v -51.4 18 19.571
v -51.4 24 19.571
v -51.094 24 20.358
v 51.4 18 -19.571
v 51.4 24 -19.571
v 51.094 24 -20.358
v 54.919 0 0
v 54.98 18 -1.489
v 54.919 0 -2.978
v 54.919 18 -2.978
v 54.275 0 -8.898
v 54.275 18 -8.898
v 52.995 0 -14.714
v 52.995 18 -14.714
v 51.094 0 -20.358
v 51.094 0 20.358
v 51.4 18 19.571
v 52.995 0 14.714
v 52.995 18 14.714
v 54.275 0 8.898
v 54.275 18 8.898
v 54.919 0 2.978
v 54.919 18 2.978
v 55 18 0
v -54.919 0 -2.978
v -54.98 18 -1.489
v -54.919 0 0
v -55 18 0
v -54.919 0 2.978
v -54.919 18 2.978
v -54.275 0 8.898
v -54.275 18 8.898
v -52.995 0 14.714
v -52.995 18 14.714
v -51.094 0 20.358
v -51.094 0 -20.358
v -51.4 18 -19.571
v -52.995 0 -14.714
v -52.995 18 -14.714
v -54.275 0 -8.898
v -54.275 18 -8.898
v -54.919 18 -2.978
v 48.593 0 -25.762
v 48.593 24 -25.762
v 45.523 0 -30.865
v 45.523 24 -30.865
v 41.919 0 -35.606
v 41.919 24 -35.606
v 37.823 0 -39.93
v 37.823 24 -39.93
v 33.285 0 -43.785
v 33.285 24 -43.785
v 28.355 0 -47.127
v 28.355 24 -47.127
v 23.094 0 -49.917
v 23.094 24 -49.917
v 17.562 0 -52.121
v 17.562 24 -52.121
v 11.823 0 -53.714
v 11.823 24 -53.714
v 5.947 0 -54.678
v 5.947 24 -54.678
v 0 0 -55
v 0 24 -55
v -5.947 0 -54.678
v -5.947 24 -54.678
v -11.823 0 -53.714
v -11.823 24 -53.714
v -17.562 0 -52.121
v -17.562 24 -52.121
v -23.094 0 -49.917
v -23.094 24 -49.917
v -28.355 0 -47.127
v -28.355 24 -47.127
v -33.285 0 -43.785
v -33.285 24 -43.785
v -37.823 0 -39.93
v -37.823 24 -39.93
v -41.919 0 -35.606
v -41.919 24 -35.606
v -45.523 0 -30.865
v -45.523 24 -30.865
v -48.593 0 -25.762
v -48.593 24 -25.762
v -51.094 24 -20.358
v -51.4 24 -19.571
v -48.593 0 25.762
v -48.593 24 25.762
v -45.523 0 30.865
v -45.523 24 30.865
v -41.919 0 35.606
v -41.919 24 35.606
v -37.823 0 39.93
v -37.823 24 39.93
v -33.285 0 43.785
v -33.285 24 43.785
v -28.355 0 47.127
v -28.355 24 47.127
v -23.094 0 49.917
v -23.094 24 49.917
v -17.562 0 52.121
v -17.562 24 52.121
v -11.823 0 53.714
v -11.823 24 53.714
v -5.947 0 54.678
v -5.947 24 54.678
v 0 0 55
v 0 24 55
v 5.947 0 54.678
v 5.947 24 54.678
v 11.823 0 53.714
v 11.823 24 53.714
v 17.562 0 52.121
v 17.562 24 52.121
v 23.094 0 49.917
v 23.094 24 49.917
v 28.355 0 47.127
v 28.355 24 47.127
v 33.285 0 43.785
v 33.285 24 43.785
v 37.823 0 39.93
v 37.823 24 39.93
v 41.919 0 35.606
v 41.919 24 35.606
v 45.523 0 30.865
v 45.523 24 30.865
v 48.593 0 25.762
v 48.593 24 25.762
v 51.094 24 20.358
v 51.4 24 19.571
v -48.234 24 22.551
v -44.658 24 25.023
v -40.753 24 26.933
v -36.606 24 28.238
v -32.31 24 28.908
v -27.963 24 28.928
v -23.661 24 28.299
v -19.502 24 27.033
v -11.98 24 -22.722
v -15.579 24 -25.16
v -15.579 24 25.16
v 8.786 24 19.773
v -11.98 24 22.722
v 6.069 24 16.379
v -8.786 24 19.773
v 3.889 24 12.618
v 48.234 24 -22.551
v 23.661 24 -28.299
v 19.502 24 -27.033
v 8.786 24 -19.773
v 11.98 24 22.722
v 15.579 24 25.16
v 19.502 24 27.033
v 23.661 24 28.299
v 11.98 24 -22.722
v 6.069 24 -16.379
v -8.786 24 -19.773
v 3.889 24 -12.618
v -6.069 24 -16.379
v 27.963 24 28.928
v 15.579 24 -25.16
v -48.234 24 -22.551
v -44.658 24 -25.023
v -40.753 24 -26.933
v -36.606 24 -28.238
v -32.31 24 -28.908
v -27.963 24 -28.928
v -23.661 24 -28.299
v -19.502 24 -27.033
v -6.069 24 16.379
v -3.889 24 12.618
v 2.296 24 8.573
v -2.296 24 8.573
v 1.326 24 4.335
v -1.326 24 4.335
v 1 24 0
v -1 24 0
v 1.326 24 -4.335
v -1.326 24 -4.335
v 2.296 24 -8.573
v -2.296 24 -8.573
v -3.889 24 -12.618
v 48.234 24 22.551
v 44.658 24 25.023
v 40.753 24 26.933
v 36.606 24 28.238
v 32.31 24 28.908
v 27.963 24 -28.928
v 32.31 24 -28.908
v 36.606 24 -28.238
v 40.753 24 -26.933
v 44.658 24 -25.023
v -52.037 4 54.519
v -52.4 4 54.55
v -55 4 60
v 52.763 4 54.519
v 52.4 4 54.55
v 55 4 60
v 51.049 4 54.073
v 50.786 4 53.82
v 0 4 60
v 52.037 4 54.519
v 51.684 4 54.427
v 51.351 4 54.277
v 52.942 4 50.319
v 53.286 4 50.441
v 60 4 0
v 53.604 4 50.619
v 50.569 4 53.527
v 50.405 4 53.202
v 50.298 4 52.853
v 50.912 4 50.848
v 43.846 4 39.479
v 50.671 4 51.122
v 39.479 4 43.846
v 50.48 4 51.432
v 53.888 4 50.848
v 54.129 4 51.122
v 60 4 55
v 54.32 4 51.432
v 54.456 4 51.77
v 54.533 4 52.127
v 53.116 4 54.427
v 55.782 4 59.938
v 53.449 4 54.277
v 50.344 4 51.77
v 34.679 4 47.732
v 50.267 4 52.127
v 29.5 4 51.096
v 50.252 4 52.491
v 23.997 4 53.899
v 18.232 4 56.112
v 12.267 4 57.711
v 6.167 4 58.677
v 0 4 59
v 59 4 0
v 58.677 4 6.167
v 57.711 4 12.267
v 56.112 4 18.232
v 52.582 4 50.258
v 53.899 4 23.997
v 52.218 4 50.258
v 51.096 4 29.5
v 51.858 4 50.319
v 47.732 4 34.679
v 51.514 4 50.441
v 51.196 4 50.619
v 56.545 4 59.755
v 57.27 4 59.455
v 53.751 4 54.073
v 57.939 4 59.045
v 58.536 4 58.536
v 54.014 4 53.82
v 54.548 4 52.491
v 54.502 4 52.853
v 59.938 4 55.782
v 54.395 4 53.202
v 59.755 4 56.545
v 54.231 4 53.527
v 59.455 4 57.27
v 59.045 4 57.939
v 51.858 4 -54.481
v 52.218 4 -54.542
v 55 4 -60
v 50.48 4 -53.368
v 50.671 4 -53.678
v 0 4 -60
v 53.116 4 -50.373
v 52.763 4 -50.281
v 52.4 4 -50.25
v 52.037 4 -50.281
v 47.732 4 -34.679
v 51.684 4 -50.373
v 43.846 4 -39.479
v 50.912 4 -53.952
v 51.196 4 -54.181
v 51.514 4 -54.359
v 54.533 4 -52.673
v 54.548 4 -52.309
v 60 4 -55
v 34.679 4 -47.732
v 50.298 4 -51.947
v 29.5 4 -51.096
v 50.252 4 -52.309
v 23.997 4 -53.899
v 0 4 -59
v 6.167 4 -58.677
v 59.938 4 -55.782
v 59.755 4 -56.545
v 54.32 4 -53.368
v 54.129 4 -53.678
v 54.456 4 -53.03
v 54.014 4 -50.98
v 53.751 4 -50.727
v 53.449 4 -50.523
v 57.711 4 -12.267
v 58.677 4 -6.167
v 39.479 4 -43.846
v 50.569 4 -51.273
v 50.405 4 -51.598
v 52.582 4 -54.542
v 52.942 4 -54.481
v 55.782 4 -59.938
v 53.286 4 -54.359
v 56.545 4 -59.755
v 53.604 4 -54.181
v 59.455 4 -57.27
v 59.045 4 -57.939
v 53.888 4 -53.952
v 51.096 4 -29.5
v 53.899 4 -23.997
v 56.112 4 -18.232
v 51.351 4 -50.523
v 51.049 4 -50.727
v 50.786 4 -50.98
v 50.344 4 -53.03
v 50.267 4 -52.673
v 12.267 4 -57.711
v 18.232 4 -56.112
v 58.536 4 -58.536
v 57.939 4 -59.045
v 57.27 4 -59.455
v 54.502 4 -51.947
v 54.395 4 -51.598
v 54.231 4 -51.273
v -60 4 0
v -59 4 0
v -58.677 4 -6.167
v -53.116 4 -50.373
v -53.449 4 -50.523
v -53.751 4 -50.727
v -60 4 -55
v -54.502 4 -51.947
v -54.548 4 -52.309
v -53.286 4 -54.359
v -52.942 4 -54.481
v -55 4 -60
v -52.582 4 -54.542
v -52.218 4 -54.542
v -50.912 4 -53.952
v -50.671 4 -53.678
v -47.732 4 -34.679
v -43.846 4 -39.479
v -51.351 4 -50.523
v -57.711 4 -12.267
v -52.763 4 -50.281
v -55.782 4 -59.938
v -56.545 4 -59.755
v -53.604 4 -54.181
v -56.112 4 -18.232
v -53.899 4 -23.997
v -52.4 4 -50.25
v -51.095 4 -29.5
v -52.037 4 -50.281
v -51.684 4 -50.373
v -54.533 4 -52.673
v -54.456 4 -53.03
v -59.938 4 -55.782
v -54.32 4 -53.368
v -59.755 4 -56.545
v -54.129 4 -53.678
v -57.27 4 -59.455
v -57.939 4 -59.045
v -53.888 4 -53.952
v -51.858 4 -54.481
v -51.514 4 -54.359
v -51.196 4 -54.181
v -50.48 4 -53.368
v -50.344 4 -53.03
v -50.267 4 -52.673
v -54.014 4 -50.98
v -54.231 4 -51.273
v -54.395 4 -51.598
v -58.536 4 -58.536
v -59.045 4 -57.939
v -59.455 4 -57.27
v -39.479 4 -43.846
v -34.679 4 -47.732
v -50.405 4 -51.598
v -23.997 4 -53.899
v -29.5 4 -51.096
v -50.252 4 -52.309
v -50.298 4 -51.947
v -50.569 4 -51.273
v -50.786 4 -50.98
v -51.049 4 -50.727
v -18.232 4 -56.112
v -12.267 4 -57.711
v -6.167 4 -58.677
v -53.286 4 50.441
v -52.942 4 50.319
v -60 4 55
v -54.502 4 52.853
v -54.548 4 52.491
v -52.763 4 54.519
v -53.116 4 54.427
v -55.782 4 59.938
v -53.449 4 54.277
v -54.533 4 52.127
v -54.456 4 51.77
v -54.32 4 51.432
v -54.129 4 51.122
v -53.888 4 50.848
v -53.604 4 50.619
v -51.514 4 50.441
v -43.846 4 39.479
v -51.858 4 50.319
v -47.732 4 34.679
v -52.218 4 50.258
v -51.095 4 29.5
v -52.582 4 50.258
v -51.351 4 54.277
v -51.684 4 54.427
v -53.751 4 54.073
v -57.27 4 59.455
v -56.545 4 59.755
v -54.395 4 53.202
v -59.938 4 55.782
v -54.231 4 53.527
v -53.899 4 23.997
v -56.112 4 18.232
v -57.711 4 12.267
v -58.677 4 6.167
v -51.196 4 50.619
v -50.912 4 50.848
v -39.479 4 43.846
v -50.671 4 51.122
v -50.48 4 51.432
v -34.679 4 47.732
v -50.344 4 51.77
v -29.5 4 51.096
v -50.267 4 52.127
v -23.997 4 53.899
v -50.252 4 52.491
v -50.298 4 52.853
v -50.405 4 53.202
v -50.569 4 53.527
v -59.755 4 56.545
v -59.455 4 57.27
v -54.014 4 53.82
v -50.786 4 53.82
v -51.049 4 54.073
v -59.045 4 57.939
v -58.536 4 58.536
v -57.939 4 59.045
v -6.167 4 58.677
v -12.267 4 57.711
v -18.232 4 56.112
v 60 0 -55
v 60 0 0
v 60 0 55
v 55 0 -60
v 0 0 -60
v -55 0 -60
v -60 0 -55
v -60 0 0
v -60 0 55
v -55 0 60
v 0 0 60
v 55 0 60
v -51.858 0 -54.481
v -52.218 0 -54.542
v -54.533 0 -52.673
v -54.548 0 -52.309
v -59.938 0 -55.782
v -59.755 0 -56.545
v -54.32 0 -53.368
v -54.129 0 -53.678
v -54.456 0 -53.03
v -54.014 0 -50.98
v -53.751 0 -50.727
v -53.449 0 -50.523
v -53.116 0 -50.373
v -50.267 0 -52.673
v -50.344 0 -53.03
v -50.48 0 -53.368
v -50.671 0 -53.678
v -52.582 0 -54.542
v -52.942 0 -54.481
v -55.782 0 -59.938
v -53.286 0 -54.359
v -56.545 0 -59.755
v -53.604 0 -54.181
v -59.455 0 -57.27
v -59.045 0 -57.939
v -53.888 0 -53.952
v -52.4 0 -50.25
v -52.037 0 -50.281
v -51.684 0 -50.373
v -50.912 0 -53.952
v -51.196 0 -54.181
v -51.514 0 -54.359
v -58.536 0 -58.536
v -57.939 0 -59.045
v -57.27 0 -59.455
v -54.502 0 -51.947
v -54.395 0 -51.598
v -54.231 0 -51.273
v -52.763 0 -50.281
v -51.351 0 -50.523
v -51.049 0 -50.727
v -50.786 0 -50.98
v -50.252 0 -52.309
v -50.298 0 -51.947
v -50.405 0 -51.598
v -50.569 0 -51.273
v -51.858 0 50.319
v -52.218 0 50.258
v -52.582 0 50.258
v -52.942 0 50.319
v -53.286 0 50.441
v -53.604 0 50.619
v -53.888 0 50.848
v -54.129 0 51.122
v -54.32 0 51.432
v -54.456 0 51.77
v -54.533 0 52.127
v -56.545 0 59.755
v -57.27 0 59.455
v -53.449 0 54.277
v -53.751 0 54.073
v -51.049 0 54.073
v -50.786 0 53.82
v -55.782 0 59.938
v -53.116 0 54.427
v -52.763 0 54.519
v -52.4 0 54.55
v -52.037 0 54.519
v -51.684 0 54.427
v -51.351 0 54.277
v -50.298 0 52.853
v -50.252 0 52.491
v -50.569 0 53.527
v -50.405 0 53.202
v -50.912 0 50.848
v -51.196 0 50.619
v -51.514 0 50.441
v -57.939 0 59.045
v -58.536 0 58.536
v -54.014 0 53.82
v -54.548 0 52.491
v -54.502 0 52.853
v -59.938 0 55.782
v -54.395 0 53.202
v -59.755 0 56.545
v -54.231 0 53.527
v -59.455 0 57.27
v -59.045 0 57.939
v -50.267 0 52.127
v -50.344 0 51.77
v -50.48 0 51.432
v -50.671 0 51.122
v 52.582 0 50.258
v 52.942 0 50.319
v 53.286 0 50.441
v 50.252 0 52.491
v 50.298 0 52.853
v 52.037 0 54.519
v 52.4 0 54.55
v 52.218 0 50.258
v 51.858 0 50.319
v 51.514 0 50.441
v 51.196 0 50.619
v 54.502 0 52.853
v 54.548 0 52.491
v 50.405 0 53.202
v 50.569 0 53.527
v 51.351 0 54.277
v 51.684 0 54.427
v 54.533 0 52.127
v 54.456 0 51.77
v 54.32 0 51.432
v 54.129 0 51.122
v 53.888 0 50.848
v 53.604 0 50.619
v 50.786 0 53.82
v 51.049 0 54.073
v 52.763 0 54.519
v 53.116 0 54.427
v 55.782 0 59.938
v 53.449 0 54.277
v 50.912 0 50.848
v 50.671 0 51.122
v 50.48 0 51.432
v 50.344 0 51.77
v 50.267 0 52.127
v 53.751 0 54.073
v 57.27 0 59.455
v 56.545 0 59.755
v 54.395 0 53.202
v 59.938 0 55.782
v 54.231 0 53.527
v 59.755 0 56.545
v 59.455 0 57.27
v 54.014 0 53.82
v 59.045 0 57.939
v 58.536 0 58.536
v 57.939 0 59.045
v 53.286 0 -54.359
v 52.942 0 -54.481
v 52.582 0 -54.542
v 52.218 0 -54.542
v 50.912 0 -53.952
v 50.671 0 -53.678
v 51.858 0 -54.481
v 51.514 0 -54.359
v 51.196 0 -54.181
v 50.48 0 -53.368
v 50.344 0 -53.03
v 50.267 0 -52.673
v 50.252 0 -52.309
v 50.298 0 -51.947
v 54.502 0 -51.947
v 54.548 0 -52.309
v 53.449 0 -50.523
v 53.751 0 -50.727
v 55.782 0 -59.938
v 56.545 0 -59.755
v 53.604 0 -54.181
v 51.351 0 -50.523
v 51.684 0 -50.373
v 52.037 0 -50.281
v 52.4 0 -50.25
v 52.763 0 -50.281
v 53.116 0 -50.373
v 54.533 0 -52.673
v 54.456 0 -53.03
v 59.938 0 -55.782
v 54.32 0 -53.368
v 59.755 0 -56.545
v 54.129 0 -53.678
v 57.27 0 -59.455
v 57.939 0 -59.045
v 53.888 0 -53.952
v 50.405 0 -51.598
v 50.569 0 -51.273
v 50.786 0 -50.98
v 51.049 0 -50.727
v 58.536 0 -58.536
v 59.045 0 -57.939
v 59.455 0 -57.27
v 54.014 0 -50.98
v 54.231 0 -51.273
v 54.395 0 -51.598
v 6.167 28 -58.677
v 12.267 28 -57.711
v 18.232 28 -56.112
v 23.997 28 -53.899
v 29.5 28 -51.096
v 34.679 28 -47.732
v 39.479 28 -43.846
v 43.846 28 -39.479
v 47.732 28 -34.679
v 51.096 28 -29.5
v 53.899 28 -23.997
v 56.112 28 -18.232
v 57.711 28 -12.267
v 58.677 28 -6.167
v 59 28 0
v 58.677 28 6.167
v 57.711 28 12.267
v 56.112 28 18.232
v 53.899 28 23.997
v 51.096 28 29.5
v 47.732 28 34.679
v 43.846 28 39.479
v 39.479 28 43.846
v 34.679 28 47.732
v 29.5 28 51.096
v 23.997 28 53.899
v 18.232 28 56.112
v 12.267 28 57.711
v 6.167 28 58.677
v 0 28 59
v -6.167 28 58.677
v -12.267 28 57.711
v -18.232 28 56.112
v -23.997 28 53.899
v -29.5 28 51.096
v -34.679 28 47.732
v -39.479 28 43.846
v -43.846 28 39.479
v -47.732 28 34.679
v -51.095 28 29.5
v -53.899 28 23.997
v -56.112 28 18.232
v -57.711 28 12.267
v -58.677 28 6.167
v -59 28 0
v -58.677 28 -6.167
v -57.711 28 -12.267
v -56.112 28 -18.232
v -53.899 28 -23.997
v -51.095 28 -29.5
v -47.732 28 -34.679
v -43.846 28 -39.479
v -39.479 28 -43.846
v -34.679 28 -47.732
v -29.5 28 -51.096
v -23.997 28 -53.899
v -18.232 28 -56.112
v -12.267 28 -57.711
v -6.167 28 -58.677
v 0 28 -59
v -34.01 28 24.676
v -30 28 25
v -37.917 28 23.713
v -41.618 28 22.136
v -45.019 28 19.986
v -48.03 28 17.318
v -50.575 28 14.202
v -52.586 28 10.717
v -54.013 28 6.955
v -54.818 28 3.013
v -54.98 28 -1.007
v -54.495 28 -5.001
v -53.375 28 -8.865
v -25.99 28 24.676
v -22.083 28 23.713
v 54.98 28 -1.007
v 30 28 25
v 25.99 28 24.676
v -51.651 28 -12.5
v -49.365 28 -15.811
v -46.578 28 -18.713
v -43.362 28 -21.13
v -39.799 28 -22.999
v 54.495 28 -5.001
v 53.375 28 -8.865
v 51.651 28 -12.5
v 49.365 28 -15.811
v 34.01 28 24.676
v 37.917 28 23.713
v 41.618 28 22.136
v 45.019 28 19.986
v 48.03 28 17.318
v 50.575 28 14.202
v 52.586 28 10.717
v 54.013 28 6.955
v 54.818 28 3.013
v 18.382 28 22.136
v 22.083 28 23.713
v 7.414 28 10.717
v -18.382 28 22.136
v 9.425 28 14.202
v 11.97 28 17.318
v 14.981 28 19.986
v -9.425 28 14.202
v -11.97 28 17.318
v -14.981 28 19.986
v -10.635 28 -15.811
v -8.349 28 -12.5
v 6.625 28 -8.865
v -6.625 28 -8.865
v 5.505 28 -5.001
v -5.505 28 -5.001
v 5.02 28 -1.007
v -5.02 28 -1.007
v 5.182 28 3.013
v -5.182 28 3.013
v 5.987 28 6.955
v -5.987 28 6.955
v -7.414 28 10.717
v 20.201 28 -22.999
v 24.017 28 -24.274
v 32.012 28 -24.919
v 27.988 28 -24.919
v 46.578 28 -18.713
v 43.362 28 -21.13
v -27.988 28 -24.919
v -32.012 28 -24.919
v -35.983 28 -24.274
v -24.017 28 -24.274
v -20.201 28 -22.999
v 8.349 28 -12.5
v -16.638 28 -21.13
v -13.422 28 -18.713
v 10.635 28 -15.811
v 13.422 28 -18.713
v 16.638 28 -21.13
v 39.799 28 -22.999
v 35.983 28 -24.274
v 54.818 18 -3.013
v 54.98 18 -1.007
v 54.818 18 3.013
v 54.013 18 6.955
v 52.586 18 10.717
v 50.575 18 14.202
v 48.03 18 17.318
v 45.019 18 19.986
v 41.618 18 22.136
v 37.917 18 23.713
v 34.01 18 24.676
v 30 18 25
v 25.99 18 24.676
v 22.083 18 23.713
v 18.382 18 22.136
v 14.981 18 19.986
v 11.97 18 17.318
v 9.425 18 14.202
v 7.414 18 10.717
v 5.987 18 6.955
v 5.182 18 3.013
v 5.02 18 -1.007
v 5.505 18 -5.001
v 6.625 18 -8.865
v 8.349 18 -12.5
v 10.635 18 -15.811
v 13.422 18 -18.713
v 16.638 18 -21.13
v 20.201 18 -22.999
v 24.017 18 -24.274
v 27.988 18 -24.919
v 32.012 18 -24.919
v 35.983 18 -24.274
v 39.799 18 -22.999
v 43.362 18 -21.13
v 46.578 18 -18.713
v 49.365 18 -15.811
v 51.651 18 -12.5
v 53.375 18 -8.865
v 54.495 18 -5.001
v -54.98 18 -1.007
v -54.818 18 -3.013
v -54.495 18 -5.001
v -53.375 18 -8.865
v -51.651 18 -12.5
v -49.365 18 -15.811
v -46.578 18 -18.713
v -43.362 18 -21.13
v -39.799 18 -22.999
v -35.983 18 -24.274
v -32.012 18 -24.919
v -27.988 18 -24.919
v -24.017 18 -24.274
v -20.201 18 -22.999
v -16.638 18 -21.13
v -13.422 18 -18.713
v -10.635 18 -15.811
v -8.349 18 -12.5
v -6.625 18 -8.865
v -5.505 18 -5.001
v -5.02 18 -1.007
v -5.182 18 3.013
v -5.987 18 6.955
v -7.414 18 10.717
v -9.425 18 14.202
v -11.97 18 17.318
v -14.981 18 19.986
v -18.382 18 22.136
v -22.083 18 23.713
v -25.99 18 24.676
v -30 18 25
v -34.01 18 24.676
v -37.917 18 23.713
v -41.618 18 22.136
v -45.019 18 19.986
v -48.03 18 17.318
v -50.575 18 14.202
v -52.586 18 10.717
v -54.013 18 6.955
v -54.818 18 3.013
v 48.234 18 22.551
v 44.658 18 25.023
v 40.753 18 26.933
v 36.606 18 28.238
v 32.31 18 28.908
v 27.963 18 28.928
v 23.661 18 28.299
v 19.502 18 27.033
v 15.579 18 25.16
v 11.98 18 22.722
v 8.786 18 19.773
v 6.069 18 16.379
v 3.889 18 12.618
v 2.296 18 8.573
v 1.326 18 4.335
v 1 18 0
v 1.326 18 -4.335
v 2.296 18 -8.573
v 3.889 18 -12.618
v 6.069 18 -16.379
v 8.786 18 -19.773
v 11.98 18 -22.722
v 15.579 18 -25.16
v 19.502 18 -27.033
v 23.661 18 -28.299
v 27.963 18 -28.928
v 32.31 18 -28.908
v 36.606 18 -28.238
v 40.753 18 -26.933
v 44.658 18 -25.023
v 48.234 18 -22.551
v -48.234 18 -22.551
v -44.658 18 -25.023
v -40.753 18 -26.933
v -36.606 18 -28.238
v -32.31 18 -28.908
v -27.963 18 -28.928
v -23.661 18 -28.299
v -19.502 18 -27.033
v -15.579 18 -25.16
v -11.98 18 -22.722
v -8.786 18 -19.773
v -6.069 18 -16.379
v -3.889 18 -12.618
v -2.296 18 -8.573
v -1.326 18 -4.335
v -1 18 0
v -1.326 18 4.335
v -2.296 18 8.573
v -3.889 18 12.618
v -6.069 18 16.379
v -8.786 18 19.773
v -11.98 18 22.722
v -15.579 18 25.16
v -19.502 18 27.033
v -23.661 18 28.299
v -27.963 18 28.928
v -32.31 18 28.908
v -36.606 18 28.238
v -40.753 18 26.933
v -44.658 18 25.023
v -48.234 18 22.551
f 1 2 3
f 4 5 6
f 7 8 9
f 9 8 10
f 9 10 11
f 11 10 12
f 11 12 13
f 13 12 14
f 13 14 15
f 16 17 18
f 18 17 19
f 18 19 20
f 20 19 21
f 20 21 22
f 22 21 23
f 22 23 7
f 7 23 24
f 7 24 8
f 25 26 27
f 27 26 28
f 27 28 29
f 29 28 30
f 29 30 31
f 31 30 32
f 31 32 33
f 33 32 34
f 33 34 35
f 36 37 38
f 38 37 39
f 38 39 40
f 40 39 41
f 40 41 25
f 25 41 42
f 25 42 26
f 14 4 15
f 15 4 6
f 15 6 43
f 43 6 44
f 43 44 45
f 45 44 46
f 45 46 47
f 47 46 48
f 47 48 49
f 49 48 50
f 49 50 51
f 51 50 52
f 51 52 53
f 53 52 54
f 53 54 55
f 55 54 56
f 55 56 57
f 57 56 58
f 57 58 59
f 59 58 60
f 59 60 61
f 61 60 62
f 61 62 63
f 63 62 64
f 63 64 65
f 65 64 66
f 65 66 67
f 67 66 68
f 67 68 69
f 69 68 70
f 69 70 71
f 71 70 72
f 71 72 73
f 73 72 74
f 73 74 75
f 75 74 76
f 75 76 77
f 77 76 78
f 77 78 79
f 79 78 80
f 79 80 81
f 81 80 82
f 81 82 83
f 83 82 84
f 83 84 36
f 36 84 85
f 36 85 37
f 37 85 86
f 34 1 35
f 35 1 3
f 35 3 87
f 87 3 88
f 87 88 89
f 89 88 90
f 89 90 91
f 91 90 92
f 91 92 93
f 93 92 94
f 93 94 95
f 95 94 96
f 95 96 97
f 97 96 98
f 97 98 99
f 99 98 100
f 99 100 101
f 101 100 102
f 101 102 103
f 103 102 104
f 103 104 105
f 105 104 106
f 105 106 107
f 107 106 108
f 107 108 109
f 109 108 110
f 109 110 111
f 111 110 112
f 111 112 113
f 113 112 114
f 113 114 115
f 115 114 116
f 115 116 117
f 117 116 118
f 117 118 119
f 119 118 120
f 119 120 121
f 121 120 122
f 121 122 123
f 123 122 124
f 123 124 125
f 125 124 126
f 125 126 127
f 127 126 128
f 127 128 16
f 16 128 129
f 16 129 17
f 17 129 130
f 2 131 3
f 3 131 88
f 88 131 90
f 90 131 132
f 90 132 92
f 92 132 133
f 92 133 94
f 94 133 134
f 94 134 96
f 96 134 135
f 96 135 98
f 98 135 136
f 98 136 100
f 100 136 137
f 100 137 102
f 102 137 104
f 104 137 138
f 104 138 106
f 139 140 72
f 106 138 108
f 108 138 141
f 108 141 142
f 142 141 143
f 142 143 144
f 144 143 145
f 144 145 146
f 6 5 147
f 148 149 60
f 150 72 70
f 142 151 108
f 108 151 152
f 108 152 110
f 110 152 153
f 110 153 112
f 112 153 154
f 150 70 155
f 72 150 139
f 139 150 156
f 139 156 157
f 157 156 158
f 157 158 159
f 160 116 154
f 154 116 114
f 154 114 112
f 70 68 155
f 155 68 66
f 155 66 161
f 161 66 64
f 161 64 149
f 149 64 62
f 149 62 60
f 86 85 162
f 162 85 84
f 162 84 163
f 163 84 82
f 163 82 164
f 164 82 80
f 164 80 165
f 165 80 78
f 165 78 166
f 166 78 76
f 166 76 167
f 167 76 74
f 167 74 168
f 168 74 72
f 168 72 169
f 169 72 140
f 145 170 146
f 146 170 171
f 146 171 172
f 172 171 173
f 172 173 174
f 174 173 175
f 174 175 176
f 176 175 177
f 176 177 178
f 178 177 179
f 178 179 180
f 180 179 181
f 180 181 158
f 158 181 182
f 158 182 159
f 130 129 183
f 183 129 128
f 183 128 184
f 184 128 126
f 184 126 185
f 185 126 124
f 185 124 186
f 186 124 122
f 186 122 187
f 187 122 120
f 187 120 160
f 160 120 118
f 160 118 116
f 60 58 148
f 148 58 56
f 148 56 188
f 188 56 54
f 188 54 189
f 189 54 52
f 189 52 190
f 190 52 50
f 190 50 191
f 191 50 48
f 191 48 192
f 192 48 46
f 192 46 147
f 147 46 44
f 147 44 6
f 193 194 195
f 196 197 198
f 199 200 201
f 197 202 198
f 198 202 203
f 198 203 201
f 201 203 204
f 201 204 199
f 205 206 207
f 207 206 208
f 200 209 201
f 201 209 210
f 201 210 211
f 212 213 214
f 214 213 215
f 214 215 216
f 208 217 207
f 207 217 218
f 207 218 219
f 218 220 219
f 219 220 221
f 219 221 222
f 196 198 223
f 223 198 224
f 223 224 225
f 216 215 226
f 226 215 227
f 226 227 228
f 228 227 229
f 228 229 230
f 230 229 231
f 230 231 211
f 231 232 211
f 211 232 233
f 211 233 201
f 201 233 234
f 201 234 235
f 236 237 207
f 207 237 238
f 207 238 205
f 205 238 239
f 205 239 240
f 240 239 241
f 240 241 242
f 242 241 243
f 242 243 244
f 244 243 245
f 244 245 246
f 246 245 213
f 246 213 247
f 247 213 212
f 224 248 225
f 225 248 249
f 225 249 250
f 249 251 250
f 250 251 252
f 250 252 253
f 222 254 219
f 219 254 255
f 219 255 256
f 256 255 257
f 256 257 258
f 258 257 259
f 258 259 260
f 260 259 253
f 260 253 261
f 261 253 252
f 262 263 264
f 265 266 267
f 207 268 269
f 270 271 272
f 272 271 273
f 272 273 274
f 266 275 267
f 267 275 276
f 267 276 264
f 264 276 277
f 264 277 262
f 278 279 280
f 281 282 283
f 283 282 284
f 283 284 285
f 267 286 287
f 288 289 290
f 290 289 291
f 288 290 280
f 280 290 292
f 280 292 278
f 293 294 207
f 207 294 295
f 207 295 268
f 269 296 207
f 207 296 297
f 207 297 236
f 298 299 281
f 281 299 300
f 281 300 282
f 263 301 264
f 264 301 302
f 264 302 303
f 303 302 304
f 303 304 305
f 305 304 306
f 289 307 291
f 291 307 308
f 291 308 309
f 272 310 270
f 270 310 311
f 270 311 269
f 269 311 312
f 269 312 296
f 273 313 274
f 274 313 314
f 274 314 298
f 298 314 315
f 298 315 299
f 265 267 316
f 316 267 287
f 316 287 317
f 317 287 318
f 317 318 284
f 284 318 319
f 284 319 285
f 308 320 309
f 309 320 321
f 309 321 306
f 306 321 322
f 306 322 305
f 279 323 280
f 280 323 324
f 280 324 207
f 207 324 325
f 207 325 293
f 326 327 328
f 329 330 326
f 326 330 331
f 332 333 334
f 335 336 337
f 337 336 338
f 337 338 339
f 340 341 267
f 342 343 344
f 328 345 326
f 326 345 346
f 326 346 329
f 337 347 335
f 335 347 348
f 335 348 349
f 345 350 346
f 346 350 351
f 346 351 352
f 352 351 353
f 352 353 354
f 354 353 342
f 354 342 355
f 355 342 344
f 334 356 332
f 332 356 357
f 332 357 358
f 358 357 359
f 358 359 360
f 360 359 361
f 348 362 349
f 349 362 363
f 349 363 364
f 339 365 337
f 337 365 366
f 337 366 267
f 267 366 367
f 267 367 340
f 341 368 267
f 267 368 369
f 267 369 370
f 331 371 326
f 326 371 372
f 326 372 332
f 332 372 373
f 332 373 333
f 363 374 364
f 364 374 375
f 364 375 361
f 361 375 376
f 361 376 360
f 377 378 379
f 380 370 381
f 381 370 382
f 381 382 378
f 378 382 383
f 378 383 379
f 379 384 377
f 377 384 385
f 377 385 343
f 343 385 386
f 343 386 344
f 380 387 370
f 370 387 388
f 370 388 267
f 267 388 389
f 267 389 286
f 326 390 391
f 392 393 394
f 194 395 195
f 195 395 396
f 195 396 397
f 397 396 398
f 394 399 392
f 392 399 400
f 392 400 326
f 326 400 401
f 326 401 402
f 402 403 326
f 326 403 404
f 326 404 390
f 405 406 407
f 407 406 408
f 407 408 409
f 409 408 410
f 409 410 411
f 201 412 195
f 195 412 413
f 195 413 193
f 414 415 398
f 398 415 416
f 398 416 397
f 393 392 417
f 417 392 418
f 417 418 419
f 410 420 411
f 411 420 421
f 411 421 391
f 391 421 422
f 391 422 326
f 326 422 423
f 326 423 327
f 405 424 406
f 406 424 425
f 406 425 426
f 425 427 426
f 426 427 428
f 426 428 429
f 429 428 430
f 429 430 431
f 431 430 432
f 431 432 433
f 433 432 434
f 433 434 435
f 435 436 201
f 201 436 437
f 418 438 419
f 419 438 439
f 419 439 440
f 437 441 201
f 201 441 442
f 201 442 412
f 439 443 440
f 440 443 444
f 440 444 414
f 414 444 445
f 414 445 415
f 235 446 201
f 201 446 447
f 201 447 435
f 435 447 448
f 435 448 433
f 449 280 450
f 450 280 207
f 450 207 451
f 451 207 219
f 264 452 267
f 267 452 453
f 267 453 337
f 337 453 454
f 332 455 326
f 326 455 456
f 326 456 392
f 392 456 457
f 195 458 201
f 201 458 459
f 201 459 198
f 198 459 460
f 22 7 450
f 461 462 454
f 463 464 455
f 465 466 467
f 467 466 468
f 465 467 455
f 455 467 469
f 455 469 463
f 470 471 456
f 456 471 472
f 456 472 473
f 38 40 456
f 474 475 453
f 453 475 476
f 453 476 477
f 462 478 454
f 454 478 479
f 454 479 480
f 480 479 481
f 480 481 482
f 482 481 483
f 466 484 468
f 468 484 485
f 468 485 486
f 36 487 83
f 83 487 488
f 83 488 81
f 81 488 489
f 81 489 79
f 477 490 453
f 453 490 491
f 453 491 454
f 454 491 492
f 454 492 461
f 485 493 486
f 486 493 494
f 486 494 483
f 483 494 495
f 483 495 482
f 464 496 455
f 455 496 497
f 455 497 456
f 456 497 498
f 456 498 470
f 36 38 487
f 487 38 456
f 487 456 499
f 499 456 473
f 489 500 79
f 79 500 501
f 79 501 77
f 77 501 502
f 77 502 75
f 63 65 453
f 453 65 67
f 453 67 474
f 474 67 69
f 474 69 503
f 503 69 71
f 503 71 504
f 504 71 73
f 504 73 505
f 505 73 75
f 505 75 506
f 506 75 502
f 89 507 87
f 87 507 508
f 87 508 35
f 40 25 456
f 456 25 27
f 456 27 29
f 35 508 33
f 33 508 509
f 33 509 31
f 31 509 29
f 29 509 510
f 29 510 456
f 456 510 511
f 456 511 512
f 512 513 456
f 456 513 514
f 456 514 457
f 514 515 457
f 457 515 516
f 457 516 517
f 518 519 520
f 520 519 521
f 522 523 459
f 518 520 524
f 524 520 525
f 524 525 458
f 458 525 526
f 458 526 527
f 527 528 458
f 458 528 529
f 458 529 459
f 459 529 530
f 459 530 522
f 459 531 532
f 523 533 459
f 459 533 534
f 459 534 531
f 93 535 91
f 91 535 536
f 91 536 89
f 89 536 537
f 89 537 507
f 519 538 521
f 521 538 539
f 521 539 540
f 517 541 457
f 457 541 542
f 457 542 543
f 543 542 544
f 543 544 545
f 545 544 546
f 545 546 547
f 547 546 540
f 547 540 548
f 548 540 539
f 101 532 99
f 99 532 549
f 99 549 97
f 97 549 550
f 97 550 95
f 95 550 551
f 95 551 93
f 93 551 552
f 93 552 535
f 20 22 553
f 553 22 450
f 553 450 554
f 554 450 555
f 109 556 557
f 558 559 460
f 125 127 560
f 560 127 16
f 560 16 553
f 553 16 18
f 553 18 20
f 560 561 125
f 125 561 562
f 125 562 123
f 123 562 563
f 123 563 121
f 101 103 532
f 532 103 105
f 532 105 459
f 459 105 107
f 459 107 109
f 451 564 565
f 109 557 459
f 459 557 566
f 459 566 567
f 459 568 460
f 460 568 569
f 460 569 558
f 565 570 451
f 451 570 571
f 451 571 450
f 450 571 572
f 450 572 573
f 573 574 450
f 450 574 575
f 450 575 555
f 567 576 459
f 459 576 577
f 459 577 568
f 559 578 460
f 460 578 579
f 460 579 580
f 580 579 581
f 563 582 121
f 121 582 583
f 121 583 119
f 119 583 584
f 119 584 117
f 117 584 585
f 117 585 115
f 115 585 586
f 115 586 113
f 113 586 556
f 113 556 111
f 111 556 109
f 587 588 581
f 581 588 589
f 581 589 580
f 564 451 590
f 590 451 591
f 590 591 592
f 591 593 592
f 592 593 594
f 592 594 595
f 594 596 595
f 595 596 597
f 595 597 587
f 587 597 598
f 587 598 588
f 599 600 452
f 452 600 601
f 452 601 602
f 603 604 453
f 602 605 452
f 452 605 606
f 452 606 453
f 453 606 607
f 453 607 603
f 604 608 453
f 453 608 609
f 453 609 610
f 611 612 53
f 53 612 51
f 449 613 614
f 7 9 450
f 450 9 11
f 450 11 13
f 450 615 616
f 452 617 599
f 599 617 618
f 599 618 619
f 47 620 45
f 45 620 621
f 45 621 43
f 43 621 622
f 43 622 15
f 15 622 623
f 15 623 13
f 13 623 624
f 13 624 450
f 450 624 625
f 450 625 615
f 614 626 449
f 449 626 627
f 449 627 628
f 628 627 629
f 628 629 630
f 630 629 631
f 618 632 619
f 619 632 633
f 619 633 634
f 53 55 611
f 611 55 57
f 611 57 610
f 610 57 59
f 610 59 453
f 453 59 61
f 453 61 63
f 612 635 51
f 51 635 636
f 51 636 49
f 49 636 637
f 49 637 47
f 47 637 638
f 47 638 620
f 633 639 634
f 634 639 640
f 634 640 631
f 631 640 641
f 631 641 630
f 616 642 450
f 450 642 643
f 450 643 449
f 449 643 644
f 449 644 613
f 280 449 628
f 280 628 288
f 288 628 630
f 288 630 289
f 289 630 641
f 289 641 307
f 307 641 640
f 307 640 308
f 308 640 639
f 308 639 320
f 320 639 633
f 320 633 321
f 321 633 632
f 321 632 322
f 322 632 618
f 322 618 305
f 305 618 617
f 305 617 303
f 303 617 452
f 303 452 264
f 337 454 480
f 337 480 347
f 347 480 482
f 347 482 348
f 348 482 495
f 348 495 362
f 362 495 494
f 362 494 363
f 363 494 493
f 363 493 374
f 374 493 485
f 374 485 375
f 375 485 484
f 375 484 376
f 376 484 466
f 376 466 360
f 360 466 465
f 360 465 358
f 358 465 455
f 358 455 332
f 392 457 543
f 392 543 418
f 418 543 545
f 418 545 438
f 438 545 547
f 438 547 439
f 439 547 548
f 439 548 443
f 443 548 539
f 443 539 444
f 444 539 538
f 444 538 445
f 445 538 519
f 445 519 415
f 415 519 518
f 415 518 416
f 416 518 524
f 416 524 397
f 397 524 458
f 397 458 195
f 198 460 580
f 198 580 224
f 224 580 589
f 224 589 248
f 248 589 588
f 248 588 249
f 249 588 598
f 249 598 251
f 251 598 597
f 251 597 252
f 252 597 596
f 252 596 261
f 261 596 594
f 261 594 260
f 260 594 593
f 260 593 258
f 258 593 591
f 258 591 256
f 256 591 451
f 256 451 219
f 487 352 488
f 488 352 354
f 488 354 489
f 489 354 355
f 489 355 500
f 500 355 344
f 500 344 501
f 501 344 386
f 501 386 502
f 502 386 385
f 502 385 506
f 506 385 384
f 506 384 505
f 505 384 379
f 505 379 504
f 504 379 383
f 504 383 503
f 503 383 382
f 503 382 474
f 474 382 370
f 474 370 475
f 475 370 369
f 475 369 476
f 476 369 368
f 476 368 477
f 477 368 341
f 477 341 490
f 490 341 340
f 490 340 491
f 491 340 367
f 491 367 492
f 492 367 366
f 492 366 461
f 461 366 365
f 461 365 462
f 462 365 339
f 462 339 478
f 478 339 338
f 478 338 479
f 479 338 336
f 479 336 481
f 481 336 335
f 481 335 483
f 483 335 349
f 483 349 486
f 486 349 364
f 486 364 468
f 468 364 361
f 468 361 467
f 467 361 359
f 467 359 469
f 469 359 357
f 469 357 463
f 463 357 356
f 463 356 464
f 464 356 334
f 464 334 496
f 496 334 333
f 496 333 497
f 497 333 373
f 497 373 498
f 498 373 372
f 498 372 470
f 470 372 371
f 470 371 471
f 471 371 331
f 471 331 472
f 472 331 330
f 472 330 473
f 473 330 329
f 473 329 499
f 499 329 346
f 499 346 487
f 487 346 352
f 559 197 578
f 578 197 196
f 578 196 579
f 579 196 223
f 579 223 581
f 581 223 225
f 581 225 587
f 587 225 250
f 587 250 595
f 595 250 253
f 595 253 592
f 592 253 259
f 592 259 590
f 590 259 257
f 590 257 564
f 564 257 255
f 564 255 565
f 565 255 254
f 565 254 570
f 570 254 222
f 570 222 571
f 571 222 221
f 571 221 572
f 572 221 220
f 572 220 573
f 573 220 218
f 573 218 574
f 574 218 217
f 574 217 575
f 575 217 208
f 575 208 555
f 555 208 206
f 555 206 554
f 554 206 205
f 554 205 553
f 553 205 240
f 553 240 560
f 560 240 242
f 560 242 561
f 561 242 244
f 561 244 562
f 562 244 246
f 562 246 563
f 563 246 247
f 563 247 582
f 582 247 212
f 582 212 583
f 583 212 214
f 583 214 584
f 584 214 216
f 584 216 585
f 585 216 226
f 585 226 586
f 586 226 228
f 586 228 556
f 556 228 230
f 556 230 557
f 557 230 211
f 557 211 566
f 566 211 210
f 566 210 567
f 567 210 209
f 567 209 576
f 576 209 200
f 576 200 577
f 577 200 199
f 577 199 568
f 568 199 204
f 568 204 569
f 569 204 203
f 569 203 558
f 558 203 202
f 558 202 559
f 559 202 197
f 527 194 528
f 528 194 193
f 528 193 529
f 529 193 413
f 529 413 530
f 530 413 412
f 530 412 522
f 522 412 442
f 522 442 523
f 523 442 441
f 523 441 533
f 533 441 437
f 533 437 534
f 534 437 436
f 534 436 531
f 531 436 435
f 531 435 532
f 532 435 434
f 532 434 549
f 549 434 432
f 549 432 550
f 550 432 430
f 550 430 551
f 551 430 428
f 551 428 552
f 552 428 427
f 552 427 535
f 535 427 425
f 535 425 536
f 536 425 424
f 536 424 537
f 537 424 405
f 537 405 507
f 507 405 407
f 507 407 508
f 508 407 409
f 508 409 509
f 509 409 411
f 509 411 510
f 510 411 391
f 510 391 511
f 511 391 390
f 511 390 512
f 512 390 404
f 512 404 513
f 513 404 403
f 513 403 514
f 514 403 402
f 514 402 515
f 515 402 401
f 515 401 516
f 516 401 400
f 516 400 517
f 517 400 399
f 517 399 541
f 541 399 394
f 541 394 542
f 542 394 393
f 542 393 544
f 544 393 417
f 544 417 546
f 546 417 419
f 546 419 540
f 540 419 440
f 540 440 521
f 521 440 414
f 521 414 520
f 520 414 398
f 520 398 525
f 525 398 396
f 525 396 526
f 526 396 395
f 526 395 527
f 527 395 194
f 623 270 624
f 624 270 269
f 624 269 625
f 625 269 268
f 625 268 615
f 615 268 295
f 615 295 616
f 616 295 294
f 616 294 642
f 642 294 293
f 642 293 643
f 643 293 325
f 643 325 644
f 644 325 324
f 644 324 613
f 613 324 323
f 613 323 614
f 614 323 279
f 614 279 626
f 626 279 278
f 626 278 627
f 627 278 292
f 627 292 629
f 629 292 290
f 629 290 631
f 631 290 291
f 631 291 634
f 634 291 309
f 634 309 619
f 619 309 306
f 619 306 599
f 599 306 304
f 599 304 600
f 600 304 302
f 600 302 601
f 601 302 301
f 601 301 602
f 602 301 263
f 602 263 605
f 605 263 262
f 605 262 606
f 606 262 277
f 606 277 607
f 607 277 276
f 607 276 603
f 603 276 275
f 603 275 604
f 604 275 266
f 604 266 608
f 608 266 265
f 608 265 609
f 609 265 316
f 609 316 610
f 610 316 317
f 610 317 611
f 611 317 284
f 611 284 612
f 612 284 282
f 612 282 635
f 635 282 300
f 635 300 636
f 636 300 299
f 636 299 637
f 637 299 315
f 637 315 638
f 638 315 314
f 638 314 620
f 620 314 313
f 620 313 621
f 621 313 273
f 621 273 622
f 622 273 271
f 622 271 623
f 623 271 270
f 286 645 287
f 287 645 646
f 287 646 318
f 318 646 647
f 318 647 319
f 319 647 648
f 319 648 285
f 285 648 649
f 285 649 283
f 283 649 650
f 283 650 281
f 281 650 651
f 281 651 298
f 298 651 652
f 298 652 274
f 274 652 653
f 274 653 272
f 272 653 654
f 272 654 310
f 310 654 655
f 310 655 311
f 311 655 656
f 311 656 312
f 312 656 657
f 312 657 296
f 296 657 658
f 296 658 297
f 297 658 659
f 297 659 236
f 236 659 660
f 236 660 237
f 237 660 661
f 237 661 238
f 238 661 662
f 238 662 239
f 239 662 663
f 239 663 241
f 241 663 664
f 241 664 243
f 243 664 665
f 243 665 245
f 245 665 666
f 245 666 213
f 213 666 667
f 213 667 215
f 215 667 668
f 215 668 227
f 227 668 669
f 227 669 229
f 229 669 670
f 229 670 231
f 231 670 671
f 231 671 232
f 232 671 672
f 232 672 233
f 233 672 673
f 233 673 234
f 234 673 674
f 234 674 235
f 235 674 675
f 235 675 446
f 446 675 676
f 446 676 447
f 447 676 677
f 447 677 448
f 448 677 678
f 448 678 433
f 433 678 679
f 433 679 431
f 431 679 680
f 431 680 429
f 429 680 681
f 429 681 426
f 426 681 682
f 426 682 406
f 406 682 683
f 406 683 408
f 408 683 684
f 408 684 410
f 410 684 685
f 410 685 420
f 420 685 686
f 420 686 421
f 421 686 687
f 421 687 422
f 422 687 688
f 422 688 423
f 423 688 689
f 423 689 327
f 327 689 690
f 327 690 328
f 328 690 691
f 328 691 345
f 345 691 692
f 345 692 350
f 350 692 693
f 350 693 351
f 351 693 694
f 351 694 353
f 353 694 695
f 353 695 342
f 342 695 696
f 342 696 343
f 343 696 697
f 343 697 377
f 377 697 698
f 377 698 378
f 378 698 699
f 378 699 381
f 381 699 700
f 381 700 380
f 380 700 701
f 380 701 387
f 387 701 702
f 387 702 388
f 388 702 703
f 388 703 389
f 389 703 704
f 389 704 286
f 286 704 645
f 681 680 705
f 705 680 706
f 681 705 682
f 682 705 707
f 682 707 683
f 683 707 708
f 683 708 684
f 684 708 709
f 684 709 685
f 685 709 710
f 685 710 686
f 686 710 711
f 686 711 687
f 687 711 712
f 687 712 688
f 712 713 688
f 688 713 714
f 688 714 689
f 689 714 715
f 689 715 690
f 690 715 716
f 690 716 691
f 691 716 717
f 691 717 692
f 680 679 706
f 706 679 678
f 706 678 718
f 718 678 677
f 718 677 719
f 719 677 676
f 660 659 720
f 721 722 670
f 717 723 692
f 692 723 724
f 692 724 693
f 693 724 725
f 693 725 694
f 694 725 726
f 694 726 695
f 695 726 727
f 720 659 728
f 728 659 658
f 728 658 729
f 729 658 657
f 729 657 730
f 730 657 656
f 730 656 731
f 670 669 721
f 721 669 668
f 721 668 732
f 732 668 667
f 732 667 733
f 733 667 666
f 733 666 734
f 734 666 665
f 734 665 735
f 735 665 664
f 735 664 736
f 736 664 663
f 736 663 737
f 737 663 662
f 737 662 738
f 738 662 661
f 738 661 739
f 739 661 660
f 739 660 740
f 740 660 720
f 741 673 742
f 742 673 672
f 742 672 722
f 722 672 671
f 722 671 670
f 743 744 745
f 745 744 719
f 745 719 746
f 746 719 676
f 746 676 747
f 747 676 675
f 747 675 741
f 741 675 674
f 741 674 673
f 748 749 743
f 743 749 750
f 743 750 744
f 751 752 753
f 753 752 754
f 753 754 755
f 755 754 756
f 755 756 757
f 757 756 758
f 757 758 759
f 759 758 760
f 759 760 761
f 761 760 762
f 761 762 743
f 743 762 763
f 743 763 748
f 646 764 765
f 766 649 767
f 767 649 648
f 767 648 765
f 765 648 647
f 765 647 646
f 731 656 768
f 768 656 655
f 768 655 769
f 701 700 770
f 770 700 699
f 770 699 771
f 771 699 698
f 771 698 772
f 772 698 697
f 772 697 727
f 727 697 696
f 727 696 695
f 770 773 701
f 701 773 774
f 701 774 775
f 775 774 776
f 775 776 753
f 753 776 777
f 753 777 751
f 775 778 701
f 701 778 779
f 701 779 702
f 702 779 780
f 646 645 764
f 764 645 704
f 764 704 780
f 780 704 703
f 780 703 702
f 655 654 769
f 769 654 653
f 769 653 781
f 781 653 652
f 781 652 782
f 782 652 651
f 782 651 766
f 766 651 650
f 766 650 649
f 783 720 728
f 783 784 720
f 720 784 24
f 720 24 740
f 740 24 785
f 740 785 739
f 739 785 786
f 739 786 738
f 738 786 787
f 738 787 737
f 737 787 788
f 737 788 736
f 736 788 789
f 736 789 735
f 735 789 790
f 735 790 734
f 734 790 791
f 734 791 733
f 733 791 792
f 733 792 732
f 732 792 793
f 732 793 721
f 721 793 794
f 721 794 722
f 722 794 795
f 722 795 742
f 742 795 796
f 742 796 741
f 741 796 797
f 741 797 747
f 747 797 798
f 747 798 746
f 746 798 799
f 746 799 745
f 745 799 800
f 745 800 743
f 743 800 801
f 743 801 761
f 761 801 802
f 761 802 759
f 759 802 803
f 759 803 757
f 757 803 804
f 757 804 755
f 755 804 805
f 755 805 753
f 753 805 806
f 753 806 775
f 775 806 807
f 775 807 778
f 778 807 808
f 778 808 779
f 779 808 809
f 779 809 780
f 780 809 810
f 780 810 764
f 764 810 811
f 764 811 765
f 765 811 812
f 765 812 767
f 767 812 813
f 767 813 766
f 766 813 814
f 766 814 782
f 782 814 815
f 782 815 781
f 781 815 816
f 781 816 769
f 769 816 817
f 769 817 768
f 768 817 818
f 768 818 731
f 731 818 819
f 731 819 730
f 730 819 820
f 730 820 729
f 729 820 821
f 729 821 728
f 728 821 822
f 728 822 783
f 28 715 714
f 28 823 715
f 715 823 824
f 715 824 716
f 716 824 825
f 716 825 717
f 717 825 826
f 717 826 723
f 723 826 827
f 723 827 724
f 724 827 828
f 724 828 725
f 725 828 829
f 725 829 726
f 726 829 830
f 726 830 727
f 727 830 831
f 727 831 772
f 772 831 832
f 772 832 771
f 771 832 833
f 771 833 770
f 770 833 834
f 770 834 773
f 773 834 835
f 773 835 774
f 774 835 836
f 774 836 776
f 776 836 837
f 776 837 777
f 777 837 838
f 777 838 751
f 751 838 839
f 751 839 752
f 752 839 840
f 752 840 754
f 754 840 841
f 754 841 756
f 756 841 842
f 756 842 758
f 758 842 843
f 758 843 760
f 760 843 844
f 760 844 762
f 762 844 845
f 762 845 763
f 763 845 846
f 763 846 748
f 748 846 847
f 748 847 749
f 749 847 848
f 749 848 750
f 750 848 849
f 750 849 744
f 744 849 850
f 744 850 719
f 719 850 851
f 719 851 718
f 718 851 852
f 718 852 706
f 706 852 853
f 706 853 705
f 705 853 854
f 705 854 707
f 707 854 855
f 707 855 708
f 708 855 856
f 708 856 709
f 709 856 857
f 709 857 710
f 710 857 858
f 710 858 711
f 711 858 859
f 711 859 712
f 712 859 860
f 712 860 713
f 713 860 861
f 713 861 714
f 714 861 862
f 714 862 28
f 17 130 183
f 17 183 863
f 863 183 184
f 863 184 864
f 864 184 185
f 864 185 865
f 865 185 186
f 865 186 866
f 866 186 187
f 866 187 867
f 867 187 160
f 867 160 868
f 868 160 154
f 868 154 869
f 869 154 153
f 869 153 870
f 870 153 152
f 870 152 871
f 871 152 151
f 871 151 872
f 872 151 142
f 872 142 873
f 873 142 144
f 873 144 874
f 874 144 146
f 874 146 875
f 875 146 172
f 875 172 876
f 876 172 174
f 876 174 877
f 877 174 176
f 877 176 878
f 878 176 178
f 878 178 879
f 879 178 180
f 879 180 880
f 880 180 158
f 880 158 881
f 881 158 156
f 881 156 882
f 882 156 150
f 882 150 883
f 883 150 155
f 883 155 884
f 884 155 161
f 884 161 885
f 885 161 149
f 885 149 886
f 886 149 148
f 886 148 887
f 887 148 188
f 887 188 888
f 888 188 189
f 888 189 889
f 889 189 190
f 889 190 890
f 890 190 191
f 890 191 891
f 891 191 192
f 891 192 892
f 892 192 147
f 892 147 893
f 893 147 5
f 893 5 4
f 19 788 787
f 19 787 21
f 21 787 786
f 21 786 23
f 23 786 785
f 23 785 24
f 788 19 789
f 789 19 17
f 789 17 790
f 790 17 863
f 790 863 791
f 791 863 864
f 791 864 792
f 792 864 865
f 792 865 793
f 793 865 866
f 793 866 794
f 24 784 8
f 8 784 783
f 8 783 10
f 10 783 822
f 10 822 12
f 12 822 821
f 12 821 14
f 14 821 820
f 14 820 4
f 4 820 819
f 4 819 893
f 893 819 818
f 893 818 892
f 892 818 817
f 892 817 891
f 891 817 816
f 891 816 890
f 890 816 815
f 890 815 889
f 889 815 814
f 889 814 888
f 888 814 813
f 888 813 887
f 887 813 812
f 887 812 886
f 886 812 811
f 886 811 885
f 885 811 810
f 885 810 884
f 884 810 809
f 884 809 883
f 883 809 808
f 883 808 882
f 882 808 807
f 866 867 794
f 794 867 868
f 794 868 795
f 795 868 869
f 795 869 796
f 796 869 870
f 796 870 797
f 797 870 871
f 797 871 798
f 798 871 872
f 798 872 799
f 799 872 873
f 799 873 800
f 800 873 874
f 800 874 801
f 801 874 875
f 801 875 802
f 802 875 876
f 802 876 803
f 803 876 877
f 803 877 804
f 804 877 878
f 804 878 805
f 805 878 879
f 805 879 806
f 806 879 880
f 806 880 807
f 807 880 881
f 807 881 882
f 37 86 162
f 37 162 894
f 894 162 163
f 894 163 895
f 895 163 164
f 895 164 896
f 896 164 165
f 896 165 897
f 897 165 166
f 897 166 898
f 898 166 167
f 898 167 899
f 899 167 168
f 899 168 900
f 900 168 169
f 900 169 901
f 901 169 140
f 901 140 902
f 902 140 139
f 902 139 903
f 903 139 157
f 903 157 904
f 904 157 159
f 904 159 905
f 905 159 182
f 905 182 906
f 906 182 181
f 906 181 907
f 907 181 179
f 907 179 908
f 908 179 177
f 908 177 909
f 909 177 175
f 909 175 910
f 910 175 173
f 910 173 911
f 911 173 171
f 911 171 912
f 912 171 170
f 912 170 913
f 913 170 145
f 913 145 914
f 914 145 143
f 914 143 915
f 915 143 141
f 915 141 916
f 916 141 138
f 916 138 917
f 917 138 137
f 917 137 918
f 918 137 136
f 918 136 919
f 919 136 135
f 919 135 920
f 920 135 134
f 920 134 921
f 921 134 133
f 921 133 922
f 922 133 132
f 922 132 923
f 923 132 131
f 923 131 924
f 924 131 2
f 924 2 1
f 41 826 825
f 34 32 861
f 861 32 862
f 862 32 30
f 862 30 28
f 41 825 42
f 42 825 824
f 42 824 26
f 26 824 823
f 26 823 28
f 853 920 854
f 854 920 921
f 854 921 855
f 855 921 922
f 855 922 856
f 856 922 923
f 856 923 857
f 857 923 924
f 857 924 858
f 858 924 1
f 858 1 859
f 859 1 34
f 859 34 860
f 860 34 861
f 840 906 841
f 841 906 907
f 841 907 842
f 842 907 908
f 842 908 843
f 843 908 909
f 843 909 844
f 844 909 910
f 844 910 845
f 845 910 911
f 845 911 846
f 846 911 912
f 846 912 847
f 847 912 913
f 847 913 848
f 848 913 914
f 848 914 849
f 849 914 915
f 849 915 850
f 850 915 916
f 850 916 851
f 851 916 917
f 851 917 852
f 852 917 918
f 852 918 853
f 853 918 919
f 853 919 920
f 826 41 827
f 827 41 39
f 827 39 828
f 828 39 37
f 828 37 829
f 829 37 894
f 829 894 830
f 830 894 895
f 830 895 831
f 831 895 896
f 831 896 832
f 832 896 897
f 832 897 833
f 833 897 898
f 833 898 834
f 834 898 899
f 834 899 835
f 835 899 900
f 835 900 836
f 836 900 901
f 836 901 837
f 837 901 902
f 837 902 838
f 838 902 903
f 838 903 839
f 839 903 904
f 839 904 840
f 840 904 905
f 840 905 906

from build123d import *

# Parameters (mm, degrees)
SKETCH1_W           = 120
SKETCH1_H           = 120
BOSS_EXTRUDE1_DEPTH = 4
FILLET1_R           = 5
SKETCH2_R           = 2.15
CUT_EXTRUDE1_DEPTH  = 4
SKETCH3_R           = 55
CUT_EXTRUDE2_DEPTH  = 4
BOSS_EXTRUDE2_START = 20
SKETCH5_R           = 59
SKETCH5_R_2         = 55
BOSS_EXTRUDE2_DEPTH = 20
BOSS_EXTRUDE3_START = 4
SKETCH6_R           = 59
BOSS_EXTRUDE3_DEPTH = 4
SKETCH7_R           = 25
CUT_EXTRUDE3_DEPTH  = 4
SKETCH8_R           = 29
SKETCH8_R_2         = 25
BOSS_EXTRUDE4_DEPTH = 6


with BuildPart() as part:
    # Sketch1 → Boss-Extrude1 (new body)
    with BuildSketch(Plane(origin=(0, 0, 0), x_dir=(1, 0, 0), z_dir=(0, 1, 0))):
        Rectangle(SKETCH1_W, SKETCH1_H)
    extrude(amount=BOSS_EXTRUDE1_DEPTH)

    # Fillet1
    fillet1_edges = [part.edges().sort_by_distance(p)[0] for p in [
        (60, 2, 60),
        (-60, 2, 60),
        (-60, 2, -60),
        (60, 2, -60),
    ]]
    fillet(fillet1_edges, radius=FILLET1_R)

    # Sketch2 → Cut-Extrude1 (cut)
    with BuildSketch(Plane(origin=(0, 4, 0), x_dir=(1, 0, 0), z_dir=(0, 1, 0))):
        with Locations(Location((-52.4, 52.4, 0), (0, 0, 270))):
            Circle(SKETCH2_R)
        with Locations(Location((52.4, 52.4, 0), (0, 0, 270))):
            Circle(SKETCH2_R)
        with Locations(Location((-52.4, -52.4, 0), (0, 0, 270))):
            Circle(SKETCH2_R)
        with Locations(Location((52.4, -52.4, 0), (0, 0, 270))):
            Circle(SKETCH2_R)
    extrude(amount=-CUT_EXTRUDE1_DEPTH, mode=Mode.SUBTRACT)

    # Sketch3 → Cut-Extrude2 (cut)
    with BuildSketch(Plane(origin=(0, 4, 0), x_dir=(1, 0, 0), z_dir=(0, 1, 0))):
        with Locations(Location((0, 0, 0), (0, 0, 270))):
            Circle(SKETCH3_R)
    extrude(amount=-CUT_EXTRUDE2_DEPTH, mode=Mode.SUBTRACT)

    # Sketch5 → Boss-Extrude2 (add)
    with BuildSketch(Plane(origin=(0, 4, 0), x_dir=(1, 0, 0), z_dir=(0, 1, 0)).offset(BOSS_EXTRUDE2_START)):
        with Locations(Location((0, 0, 0), (0, 0, 270))):
            Circle(SKETCH5_R)
        with Locations(Location((0, 0, 0), (0, 0, 270))):
            Circle(SKETCH5_R_2, mode=Mode.SUBTRACT)
    extrude(amount=-BOSS_EXTRUDE2_DEPTH)

    # Sketch6 → Boss-Extrude3 (add)
    with BuildSketch(Plane(origin=(0, 24, 0), x_dir=(1, 0, 0), z_dir=(0, 1, 0)).offset(BOSS_EXTRUDE3_START)):
        with Locations(Location((0, 0, 0), (0, 0, 270))):
            Circle(SKETCH6_R)
    extrude(amount=-BOSS_EXTRUDE3_DEPTH)

    # Sketch7 → Cut-Extrude3 (cut)
    with BuildSketch(Plane(origin=(0, 28, 0), x_dir=(1, 0, 0), z_dir=(0, 1, 0))):
        with Locations(Location((30, 0, 0), (0, 0, 270))):
            Circle(SKETCH7_R)
        with Locations(Location((-30, 0, 0), (0, 0, 270))):
            Circle(SKETCH7_R)
    extrude(amount=-CUT_EXTRUDE3_DEPTH, mode=Mode.SUBTRACT)

    # Sketch8 → Boss-Extrude4 (add)
    # profile 1 of 2: a face of its own
    with BuildSketch(Plane.XZ.offset(-24)):
        with Locations((30, 0)):
            Circle(SKETCH8_R)
        with Locations(Location((30, 0, 0), (0, 0, 90))):
            Circle(SKETCH8_R_2, mode=Mode.SUBTRACT)
    # profile 2 of 2: a face of its own
    with BuildSketch(Plane.XZ.offset(-24)):
        with Locations((-30, 0)):
            Circle(SKETCH8_R)
        with Locations(Location((-30, 0, 0), (0, 0, 90))):
            Circle(SKETCH8_R_2, mode=Mode.SUBTRACT)
    extrude(amount=BOSS_EXTRUDE4_DEPTH)


solid = part.part
